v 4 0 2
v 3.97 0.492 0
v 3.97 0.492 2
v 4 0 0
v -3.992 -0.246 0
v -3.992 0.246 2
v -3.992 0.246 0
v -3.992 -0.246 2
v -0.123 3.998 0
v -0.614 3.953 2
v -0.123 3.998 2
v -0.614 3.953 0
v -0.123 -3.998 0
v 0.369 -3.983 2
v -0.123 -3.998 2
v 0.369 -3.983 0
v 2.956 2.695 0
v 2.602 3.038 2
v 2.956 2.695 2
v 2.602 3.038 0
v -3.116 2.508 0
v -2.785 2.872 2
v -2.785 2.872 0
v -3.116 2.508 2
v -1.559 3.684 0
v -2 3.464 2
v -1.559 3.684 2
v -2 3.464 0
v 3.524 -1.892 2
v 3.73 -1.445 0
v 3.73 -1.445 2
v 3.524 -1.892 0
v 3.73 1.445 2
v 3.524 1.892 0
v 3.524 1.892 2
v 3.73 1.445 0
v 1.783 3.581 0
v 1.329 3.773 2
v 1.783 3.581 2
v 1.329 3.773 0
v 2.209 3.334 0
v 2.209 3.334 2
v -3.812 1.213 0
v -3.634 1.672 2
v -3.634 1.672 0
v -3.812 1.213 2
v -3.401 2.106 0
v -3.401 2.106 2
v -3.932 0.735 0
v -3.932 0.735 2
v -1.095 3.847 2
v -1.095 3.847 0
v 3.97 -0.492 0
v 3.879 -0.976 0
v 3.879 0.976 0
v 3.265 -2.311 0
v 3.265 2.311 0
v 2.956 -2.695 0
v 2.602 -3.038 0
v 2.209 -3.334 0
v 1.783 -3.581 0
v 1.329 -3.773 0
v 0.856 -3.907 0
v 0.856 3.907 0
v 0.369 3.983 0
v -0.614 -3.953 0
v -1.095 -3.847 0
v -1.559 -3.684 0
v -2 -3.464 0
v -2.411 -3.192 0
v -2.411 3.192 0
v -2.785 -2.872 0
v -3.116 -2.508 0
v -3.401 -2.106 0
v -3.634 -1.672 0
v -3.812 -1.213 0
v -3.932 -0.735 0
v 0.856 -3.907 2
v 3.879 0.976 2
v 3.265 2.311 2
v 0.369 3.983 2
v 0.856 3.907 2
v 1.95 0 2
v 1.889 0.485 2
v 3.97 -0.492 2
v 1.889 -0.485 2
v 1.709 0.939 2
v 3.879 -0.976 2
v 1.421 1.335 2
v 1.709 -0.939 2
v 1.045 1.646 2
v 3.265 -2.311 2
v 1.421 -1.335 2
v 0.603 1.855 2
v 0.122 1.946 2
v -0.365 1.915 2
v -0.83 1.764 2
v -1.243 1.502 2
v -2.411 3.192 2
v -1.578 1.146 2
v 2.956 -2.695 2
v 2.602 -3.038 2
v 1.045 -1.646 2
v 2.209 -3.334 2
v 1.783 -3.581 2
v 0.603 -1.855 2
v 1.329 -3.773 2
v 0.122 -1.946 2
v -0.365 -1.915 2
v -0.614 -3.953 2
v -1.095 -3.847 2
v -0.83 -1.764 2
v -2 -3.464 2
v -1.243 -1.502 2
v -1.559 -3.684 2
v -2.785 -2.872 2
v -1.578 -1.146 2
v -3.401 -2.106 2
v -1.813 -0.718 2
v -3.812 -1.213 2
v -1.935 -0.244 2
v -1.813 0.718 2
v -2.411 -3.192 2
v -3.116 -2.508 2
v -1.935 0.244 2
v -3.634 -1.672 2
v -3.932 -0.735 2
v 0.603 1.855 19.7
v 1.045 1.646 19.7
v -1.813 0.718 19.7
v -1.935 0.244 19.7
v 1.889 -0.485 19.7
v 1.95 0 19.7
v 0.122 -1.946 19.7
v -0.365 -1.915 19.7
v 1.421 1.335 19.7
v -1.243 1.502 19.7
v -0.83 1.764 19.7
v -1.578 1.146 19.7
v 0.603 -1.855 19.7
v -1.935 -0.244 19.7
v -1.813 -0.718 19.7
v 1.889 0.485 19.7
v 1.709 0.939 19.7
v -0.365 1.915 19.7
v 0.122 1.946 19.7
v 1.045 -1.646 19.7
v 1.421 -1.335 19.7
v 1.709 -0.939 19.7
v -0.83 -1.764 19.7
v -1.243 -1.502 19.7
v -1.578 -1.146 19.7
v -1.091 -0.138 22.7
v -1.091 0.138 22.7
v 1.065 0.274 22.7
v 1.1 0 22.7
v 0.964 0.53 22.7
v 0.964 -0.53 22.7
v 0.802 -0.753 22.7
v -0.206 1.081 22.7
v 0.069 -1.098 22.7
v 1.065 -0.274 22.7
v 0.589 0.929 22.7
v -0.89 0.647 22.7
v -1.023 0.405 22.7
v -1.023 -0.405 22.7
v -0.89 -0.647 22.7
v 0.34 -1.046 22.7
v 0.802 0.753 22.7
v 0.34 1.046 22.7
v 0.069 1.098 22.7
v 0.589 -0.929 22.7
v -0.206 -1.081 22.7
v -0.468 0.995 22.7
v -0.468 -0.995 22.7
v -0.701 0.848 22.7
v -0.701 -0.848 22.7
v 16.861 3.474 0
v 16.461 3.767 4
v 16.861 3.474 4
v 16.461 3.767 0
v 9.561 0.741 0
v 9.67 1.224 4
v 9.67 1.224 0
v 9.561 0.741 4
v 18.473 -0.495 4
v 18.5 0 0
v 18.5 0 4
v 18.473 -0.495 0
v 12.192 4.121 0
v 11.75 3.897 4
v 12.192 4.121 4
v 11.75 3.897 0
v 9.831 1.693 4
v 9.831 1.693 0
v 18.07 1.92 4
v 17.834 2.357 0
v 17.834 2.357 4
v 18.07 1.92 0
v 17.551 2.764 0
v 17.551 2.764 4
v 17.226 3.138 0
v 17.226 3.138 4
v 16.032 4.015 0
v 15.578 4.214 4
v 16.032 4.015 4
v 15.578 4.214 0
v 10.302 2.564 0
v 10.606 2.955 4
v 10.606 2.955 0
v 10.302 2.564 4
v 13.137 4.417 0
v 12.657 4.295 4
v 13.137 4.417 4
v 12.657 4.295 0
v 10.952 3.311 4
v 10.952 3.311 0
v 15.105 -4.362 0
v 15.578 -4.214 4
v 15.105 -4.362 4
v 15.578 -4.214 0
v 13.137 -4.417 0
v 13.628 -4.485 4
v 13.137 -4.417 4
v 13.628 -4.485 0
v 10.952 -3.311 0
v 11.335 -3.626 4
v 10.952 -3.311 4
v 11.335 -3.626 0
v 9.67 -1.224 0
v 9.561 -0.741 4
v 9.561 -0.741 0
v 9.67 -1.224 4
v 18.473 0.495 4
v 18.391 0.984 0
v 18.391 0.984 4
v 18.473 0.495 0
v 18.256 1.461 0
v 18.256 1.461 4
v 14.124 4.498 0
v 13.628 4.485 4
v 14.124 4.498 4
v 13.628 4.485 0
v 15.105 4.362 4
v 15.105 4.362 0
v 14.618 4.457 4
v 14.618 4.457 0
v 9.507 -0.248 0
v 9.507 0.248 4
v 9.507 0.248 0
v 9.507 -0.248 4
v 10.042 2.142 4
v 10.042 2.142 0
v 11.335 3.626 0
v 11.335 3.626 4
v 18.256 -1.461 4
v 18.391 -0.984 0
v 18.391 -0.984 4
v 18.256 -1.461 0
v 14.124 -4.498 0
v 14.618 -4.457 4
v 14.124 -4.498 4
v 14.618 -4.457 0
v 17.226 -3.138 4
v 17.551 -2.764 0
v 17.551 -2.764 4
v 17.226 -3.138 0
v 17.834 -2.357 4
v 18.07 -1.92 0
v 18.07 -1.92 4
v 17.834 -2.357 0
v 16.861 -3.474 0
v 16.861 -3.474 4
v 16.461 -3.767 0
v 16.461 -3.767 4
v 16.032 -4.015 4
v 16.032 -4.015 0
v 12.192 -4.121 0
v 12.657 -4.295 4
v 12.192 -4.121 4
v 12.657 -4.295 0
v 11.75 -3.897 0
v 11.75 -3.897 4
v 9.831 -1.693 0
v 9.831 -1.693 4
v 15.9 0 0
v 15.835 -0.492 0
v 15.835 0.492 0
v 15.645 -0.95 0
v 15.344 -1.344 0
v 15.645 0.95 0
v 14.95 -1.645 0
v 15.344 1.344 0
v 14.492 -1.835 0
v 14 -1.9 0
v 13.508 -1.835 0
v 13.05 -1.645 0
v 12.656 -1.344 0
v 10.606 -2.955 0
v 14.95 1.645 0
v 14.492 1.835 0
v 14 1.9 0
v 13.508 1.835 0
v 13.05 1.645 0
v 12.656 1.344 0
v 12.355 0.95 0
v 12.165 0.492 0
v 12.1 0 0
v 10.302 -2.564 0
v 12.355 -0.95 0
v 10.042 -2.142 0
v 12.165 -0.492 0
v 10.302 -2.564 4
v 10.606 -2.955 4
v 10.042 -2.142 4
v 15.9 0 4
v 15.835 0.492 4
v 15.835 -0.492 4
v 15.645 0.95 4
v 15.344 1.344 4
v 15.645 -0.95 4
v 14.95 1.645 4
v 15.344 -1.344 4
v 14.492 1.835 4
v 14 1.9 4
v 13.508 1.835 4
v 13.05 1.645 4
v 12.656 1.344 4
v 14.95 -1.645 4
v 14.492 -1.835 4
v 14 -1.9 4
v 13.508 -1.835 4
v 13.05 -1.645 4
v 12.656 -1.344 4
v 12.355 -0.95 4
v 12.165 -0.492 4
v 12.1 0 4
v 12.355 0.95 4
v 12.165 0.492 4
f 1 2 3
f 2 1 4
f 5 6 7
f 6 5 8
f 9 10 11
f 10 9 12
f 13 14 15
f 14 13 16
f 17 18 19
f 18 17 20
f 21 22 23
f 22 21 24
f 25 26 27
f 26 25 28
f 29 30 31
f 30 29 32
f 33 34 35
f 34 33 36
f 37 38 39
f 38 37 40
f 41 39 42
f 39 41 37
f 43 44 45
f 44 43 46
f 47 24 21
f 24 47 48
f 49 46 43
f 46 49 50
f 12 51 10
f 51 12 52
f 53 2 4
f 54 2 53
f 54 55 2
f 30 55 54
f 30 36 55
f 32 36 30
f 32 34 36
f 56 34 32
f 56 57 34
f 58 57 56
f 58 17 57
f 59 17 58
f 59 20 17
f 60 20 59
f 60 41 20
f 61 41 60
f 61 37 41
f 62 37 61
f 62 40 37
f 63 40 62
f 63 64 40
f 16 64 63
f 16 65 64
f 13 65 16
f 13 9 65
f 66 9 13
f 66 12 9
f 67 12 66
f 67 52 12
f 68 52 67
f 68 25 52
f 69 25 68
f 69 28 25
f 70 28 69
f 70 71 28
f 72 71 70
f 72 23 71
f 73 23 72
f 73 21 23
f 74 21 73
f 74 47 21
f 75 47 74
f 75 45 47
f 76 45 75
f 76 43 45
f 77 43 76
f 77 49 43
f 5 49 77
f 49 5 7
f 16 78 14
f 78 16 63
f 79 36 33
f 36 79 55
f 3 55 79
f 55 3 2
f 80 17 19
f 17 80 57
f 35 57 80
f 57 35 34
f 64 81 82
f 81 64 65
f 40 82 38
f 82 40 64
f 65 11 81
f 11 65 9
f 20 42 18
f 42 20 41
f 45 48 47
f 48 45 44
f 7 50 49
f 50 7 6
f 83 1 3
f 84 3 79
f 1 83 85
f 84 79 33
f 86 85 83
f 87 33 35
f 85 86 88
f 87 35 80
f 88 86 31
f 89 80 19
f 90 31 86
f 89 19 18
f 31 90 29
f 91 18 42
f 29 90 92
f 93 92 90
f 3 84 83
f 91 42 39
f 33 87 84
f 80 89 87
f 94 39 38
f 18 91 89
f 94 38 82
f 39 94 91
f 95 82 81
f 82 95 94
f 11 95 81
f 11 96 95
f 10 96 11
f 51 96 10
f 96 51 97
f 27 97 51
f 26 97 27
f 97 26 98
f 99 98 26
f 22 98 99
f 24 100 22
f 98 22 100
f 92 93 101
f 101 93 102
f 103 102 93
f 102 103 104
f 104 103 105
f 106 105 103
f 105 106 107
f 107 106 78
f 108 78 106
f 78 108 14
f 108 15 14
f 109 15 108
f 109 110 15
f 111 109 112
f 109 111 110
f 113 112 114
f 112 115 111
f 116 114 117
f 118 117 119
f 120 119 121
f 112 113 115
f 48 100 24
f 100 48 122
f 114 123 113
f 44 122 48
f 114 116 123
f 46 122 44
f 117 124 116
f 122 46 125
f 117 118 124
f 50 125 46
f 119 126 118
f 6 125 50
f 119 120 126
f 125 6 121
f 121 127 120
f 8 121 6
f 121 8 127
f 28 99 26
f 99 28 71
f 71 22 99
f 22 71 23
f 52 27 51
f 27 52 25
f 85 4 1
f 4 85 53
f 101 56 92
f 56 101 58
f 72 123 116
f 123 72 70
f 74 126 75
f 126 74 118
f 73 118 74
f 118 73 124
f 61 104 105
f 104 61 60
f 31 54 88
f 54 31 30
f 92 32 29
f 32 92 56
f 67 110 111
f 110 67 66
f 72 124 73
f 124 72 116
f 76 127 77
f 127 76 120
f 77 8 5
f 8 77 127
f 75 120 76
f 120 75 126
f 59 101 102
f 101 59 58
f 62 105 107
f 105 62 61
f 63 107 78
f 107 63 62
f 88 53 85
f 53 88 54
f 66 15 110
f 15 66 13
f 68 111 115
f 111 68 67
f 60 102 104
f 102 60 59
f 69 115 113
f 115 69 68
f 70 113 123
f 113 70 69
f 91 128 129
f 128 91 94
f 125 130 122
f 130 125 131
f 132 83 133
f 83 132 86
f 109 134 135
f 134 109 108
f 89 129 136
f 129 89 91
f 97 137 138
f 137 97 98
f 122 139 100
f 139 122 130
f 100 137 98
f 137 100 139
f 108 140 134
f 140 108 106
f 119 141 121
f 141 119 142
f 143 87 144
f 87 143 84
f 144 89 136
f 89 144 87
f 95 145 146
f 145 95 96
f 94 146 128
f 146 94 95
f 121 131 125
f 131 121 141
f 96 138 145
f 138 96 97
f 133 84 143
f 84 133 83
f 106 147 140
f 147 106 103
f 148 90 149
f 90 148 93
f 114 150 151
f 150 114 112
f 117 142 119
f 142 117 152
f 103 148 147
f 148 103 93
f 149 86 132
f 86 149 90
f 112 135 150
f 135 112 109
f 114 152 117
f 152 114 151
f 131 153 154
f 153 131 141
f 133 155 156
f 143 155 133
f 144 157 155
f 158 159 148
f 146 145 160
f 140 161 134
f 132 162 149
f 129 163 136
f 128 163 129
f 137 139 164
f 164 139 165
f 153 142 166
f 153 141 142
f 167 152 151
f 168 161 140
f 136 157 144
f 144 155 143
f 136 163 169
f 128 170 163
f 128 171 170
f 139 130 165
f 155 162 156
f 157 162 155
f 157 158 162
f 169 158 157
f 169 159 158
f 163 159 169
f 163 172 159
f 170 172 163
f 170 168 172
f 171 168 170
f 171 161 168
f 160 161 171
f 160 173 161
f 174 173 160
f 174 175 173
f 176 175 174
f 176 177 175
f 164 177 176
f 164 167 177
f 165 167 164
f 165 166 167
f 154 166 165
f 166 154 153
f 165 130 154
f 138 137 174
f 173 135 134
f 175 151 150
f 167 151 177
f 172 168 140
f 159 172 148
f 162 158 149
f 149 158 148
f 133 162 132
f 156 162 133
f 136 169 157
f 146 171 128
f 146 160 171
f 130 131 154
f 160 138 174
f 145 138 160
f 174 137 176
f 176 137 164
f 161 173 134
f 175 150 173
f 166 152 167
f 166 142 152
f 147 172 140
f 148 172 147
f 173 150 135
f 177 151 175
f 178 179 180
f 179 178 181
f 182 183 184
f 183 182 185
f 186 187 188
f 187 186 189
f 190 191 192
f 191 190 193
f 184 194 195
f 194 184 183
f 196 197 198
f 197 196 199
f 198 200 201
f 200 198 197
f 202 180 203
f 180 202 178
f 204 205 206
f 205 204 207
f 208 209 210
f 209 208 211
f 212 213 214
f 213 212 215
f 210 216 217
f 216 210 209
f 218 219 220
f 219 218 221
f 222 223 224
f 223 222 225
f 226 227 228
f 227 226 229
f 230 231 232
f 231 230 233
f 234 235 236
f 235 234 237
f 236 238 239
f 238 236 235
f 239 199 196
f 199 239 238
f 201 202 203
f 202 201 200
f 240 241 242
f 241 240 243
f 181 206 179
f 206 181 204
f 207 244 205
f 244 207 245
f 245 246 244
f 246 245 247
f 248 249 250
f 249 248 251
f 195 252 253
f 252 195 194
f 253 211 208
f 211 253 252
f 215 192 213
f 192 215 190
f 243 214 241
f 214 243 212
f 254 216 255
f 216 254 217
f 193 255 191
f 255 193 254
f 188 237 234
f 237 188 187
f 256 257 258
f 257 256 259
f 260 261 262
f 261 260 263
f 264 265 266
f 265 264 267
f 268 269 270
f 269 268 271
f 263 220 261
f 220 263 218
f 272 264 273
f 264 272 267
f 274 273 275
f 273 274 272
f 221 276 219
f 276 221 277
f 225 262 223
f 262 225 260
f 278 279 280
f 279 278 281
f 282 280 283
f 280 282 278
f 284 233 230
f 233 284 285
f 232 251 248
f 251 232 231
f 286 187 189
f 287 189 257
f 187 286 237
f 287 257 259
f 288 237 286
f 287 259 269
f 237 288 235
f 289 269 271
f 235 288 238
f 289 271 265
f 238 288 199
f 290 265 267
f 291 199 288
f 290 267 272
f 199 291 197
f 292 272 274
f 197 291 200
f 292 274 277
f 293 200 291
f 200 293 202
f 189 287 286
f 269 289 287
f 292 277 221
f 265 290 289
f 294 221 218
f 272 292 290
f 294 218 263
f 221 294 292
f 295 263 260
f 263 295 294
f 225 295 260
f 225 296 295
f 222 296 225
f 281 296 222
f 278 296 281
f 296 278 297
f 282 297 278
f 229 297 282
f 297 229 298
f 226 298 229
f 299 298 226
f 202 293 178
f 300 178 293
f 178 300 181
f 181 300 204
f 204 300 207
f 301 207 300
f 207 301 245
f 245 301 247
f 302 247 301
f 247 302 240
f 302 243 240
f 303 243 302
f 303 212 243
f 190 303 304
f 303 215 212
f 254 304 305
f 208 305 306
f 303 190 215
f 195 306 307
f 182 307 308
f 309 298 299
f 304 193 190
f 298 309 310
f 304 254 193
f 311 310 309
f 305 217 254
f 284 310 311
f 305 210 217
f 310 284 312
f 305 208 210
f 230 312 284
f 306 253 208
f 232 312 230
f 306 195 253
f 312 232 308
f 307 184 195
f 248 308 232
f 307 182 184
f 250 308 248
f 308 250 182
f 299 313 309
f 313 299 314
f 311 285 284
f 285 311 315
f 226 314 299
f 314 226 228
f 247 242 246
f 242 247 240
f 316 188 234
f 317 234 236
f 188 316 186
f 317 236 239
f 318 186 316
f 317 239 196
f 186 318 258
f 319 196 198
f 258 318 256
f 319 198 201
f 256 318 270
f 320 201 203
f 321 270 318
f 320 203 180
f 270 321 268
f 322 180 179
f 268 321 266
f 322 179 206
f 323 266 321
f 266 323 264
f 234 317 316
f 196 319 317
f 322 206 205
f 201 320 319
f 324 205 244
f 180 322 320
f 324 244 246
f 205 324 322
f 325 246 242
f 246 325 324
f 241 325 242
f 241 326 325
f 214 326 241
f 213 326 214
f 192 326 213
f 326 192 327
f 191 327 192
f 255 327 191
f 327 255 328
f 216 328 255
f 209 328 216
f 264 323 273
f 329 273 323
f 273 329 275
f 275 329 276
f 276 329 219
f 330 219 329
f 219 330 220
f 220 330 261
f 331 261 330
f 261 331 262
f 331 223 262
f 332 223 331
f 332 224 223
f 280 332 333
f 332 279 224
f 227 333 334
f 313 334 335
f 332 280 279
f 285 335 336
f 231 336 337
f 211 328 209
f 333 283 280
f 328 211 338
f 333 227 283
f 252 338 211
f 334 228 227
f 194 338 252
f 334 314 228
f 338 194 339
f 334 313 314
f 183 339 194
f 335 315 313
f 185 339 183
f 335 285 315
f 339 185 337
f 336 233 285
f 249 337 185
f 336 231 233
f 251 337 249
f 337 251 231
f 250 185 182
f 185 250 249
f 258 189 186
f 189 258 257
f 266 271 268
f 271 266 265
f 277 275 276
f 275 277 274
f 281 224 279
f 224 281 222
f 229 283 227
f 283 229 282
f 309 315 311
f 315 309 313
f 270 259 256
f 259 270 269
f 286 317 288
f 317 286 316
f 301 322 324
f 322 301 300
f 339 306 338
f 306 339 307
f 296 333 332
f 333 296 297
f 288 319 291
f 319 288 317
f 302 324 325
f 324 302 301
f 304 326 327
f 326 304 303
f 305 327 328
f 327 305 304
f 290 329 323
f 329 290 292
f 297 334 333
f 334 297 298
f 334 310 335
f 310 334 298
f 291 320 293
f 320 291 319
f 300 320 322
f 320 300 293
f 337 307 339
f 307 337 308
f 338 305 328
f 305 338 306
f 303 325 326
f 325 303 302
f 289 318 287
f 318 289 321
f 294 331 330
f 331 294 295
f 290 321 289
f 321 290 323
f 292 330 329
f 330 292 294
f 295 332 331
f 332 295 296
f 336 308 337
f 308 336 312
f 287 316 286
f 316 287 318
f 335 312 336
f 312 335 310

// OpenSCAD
// file: ../parametros.scad
// ============================================================
// parametros.scad — dimensões compartilhadas do robô
// Todas as medidas em milímetros.
// ============================================================

$fa = 4;
$fs = 0.5;

// ---------- tolerância de impressão ----------
folga = 0.3;        // folga padrão em furos/encaixes
folga_berco = 0.6;
aperto_trava = 0.1;
passagem_w = 12;
passagem_d = 8;

// ---------- roda ----------
roda_d   = 36;      // diâmetro da roda
roda_w   = 10;      // largura da roda
eixo_d   = 4;       // diâmetro do eixo (haste impressa ou M4)
eixo_l   = 112;     // comprimento do eixo (haste + chanfro)

// ---------- base (chassi) ----------
base_w  = 84;       // largura (X)
base_d  = 74;       // profundidade (Y)
base_h  = 40;       // altura
parede  = 2.4;      // espessura das paredes (todas as peças)
eixo_z  = 12;       // altura do centro do eixo medida do fundo do chassi
roda_y  = roda_d/2 + 3;       // distância do centro do chassi ao centro de cada roda (Y)

// ---------- compartimento das pilhas ----------
// baia dimensionada para suporte comercial 4xAA (~62 x 58 x 17)
// ou para o suporte impresso em suporte_pilhas.scad
aa_bay_w = 72;
aa_bay_d = 58;
aa_dia   = 14.5;    // diâmetro da pilha AA
aa_comp  = 50.5;    // comprimento da pilha AA
suporte_z = eixo_z + 6 + 2*folga;
roda_x = base_w/2 + 2*folga + roda_w/2;
eixo_x = -roda_x - roda_w/2 - folga;

assert(2*roda_y >= roda_d + 2, "Rodas sem folga longitudinal");
assert(roda_y + 6 <= base_d/2, "Buchas fora do chassi");
assert(suporte_z + max(3 + aa_dia, 17) + folga <= base_h,
       "Pilhas acima do topo do chassi");
assert(eixo_z - eixo_d/2 - folga >= parede, "Eixo invade o fundo do chassi");
assert(eixo_x + eixo_l - 4 >= roda_x + roda_w/2 + folga + 2,
       "Eixo curto para as rodas e a trava");

// ---------- corpo (torso) ----------
// mesma pegada do chassi: as paredes alinham e as colunas de
// fixação ficam uma sobre a outra
corpo_w = 84;
corpo_d = 74;
corpo_h = 62;

// posição das colunas de fixação torso↔base (parafuso M3)
mont_x = 36.5;
mont_y = 32;
acesso_m3_d = 7;

// ---------- micro:bit ----------
mb_w    = 51.6;     // largura da placa
mb_h    = 42;       // altura da placa
mb_prof = 11;       // profundidade do bolso (placa + componentes + fios)
mb_base_z = 18;

// ---------- botões ----------
botao_d   = 12.4;   // botão de painel de 12 mm
botao_sep = 26;     // distância entre centros dos botões
botao_z = 9;
botao_prof = 10;
botao_porca_d = 16;

// ---------- cabeça ----------
cab_w   = 58;
cab_d   = 50;
cab_h   = 48;
led_tam = 33;       // janela p/ matriz LED 8x8 (~32 mm) ou OLED pequeno
led_prof = 8;       // profundidade do alojamento do display
led_base_z = 8;
cab_pino_h = led_base_z - 3 - 2*folga;

assert(mb_base_z + mb_h + folga <= corpo_h, "Microbit acima do torso");
assert(led_base_z + led_tam + folga <= cab_h - parede, "Display acima da cabeca");
assert(cab_pino_h > parede, "Pino da cabeca sem engate");
assert(botao_z + botao_porca_d/2 + folga <= mb_base_z, "Botoes invadem a placa");
assert(botao_prof + folga < mb_prof + 2*folga, "Botoes invadem o painel interno");
assert(acesso_m3_d >= 6 + 2*folga, "Acesso insuficiente para cabeca do parafuso");
assert(aperto_trava > 0 && aperto_trava <= 0.2, "Calibre a interferencia das travas");

// ---------- braço ----------
braco_furo = 4.4;   // furo da articulação (parafuso M4 ou pino impresso)
braco_e    = 7;     // espessura dos segmentos do braço
brac_a     = 16;    // distância entre furos do segmento superior
brac_b     = 16;    // comprimento do antebraço até a palma
brac_r     = 7;     // raio das extremidades arredondadas

// ---------- auxiliar: caixa com cantos arredondados ----------
// caixa de w x d x h, centrada em X/Y, base em z = 0
module rbox(w, d, h, r = 3) {
    hull()
        for (x = [-1, 1], y = [-1, 1])
            translate([x * (w/2 - r), y * (d/2 - r), 0])
                cylinder(r = r, h = h);
}
// main file
// ============================================================
// pino.scad — pino articulado para os ombros e cotovelos
// Imprimir 4x o pino e 4x a trava (ombro e cotovelo de 2 braços).
// Alternativa mais robusta: parafuso M4x20 + porca autotravante.
// ============================================================

include <../parametros.scad>

pino_l = max(2*braco_e, parede + 5 + braco_e) + folga + 3;   // comprimento útil (parede + ressalto + braço)

module pino() {
    union() {
        cylinder(d = 8, h = 2);                    // cabeça
        translate([0, 0, 2])
            cylinder(d = braco_furo - 0.5, h = pino_l);  // haste
        translate([0, 0, 2 + pino_l])
            cylinder(d1 = braco_furo - 0.5, d2 = braco_furo - 2.2,
                     h = 3);                        // ponta cônica
    }
}

module trava_pino() {
    // capa de pressão para a ponta do pino
    difference() {
        cylinder(d = 9, h = 4);
        translate([0, 0, -0.1])
            cylinder(d = braco_furo - 0.5 - aperto_trava, h = 4.2);
    }
}

// layout para impressão
pino();
translate([14, 0, 0]) trava_pino();
